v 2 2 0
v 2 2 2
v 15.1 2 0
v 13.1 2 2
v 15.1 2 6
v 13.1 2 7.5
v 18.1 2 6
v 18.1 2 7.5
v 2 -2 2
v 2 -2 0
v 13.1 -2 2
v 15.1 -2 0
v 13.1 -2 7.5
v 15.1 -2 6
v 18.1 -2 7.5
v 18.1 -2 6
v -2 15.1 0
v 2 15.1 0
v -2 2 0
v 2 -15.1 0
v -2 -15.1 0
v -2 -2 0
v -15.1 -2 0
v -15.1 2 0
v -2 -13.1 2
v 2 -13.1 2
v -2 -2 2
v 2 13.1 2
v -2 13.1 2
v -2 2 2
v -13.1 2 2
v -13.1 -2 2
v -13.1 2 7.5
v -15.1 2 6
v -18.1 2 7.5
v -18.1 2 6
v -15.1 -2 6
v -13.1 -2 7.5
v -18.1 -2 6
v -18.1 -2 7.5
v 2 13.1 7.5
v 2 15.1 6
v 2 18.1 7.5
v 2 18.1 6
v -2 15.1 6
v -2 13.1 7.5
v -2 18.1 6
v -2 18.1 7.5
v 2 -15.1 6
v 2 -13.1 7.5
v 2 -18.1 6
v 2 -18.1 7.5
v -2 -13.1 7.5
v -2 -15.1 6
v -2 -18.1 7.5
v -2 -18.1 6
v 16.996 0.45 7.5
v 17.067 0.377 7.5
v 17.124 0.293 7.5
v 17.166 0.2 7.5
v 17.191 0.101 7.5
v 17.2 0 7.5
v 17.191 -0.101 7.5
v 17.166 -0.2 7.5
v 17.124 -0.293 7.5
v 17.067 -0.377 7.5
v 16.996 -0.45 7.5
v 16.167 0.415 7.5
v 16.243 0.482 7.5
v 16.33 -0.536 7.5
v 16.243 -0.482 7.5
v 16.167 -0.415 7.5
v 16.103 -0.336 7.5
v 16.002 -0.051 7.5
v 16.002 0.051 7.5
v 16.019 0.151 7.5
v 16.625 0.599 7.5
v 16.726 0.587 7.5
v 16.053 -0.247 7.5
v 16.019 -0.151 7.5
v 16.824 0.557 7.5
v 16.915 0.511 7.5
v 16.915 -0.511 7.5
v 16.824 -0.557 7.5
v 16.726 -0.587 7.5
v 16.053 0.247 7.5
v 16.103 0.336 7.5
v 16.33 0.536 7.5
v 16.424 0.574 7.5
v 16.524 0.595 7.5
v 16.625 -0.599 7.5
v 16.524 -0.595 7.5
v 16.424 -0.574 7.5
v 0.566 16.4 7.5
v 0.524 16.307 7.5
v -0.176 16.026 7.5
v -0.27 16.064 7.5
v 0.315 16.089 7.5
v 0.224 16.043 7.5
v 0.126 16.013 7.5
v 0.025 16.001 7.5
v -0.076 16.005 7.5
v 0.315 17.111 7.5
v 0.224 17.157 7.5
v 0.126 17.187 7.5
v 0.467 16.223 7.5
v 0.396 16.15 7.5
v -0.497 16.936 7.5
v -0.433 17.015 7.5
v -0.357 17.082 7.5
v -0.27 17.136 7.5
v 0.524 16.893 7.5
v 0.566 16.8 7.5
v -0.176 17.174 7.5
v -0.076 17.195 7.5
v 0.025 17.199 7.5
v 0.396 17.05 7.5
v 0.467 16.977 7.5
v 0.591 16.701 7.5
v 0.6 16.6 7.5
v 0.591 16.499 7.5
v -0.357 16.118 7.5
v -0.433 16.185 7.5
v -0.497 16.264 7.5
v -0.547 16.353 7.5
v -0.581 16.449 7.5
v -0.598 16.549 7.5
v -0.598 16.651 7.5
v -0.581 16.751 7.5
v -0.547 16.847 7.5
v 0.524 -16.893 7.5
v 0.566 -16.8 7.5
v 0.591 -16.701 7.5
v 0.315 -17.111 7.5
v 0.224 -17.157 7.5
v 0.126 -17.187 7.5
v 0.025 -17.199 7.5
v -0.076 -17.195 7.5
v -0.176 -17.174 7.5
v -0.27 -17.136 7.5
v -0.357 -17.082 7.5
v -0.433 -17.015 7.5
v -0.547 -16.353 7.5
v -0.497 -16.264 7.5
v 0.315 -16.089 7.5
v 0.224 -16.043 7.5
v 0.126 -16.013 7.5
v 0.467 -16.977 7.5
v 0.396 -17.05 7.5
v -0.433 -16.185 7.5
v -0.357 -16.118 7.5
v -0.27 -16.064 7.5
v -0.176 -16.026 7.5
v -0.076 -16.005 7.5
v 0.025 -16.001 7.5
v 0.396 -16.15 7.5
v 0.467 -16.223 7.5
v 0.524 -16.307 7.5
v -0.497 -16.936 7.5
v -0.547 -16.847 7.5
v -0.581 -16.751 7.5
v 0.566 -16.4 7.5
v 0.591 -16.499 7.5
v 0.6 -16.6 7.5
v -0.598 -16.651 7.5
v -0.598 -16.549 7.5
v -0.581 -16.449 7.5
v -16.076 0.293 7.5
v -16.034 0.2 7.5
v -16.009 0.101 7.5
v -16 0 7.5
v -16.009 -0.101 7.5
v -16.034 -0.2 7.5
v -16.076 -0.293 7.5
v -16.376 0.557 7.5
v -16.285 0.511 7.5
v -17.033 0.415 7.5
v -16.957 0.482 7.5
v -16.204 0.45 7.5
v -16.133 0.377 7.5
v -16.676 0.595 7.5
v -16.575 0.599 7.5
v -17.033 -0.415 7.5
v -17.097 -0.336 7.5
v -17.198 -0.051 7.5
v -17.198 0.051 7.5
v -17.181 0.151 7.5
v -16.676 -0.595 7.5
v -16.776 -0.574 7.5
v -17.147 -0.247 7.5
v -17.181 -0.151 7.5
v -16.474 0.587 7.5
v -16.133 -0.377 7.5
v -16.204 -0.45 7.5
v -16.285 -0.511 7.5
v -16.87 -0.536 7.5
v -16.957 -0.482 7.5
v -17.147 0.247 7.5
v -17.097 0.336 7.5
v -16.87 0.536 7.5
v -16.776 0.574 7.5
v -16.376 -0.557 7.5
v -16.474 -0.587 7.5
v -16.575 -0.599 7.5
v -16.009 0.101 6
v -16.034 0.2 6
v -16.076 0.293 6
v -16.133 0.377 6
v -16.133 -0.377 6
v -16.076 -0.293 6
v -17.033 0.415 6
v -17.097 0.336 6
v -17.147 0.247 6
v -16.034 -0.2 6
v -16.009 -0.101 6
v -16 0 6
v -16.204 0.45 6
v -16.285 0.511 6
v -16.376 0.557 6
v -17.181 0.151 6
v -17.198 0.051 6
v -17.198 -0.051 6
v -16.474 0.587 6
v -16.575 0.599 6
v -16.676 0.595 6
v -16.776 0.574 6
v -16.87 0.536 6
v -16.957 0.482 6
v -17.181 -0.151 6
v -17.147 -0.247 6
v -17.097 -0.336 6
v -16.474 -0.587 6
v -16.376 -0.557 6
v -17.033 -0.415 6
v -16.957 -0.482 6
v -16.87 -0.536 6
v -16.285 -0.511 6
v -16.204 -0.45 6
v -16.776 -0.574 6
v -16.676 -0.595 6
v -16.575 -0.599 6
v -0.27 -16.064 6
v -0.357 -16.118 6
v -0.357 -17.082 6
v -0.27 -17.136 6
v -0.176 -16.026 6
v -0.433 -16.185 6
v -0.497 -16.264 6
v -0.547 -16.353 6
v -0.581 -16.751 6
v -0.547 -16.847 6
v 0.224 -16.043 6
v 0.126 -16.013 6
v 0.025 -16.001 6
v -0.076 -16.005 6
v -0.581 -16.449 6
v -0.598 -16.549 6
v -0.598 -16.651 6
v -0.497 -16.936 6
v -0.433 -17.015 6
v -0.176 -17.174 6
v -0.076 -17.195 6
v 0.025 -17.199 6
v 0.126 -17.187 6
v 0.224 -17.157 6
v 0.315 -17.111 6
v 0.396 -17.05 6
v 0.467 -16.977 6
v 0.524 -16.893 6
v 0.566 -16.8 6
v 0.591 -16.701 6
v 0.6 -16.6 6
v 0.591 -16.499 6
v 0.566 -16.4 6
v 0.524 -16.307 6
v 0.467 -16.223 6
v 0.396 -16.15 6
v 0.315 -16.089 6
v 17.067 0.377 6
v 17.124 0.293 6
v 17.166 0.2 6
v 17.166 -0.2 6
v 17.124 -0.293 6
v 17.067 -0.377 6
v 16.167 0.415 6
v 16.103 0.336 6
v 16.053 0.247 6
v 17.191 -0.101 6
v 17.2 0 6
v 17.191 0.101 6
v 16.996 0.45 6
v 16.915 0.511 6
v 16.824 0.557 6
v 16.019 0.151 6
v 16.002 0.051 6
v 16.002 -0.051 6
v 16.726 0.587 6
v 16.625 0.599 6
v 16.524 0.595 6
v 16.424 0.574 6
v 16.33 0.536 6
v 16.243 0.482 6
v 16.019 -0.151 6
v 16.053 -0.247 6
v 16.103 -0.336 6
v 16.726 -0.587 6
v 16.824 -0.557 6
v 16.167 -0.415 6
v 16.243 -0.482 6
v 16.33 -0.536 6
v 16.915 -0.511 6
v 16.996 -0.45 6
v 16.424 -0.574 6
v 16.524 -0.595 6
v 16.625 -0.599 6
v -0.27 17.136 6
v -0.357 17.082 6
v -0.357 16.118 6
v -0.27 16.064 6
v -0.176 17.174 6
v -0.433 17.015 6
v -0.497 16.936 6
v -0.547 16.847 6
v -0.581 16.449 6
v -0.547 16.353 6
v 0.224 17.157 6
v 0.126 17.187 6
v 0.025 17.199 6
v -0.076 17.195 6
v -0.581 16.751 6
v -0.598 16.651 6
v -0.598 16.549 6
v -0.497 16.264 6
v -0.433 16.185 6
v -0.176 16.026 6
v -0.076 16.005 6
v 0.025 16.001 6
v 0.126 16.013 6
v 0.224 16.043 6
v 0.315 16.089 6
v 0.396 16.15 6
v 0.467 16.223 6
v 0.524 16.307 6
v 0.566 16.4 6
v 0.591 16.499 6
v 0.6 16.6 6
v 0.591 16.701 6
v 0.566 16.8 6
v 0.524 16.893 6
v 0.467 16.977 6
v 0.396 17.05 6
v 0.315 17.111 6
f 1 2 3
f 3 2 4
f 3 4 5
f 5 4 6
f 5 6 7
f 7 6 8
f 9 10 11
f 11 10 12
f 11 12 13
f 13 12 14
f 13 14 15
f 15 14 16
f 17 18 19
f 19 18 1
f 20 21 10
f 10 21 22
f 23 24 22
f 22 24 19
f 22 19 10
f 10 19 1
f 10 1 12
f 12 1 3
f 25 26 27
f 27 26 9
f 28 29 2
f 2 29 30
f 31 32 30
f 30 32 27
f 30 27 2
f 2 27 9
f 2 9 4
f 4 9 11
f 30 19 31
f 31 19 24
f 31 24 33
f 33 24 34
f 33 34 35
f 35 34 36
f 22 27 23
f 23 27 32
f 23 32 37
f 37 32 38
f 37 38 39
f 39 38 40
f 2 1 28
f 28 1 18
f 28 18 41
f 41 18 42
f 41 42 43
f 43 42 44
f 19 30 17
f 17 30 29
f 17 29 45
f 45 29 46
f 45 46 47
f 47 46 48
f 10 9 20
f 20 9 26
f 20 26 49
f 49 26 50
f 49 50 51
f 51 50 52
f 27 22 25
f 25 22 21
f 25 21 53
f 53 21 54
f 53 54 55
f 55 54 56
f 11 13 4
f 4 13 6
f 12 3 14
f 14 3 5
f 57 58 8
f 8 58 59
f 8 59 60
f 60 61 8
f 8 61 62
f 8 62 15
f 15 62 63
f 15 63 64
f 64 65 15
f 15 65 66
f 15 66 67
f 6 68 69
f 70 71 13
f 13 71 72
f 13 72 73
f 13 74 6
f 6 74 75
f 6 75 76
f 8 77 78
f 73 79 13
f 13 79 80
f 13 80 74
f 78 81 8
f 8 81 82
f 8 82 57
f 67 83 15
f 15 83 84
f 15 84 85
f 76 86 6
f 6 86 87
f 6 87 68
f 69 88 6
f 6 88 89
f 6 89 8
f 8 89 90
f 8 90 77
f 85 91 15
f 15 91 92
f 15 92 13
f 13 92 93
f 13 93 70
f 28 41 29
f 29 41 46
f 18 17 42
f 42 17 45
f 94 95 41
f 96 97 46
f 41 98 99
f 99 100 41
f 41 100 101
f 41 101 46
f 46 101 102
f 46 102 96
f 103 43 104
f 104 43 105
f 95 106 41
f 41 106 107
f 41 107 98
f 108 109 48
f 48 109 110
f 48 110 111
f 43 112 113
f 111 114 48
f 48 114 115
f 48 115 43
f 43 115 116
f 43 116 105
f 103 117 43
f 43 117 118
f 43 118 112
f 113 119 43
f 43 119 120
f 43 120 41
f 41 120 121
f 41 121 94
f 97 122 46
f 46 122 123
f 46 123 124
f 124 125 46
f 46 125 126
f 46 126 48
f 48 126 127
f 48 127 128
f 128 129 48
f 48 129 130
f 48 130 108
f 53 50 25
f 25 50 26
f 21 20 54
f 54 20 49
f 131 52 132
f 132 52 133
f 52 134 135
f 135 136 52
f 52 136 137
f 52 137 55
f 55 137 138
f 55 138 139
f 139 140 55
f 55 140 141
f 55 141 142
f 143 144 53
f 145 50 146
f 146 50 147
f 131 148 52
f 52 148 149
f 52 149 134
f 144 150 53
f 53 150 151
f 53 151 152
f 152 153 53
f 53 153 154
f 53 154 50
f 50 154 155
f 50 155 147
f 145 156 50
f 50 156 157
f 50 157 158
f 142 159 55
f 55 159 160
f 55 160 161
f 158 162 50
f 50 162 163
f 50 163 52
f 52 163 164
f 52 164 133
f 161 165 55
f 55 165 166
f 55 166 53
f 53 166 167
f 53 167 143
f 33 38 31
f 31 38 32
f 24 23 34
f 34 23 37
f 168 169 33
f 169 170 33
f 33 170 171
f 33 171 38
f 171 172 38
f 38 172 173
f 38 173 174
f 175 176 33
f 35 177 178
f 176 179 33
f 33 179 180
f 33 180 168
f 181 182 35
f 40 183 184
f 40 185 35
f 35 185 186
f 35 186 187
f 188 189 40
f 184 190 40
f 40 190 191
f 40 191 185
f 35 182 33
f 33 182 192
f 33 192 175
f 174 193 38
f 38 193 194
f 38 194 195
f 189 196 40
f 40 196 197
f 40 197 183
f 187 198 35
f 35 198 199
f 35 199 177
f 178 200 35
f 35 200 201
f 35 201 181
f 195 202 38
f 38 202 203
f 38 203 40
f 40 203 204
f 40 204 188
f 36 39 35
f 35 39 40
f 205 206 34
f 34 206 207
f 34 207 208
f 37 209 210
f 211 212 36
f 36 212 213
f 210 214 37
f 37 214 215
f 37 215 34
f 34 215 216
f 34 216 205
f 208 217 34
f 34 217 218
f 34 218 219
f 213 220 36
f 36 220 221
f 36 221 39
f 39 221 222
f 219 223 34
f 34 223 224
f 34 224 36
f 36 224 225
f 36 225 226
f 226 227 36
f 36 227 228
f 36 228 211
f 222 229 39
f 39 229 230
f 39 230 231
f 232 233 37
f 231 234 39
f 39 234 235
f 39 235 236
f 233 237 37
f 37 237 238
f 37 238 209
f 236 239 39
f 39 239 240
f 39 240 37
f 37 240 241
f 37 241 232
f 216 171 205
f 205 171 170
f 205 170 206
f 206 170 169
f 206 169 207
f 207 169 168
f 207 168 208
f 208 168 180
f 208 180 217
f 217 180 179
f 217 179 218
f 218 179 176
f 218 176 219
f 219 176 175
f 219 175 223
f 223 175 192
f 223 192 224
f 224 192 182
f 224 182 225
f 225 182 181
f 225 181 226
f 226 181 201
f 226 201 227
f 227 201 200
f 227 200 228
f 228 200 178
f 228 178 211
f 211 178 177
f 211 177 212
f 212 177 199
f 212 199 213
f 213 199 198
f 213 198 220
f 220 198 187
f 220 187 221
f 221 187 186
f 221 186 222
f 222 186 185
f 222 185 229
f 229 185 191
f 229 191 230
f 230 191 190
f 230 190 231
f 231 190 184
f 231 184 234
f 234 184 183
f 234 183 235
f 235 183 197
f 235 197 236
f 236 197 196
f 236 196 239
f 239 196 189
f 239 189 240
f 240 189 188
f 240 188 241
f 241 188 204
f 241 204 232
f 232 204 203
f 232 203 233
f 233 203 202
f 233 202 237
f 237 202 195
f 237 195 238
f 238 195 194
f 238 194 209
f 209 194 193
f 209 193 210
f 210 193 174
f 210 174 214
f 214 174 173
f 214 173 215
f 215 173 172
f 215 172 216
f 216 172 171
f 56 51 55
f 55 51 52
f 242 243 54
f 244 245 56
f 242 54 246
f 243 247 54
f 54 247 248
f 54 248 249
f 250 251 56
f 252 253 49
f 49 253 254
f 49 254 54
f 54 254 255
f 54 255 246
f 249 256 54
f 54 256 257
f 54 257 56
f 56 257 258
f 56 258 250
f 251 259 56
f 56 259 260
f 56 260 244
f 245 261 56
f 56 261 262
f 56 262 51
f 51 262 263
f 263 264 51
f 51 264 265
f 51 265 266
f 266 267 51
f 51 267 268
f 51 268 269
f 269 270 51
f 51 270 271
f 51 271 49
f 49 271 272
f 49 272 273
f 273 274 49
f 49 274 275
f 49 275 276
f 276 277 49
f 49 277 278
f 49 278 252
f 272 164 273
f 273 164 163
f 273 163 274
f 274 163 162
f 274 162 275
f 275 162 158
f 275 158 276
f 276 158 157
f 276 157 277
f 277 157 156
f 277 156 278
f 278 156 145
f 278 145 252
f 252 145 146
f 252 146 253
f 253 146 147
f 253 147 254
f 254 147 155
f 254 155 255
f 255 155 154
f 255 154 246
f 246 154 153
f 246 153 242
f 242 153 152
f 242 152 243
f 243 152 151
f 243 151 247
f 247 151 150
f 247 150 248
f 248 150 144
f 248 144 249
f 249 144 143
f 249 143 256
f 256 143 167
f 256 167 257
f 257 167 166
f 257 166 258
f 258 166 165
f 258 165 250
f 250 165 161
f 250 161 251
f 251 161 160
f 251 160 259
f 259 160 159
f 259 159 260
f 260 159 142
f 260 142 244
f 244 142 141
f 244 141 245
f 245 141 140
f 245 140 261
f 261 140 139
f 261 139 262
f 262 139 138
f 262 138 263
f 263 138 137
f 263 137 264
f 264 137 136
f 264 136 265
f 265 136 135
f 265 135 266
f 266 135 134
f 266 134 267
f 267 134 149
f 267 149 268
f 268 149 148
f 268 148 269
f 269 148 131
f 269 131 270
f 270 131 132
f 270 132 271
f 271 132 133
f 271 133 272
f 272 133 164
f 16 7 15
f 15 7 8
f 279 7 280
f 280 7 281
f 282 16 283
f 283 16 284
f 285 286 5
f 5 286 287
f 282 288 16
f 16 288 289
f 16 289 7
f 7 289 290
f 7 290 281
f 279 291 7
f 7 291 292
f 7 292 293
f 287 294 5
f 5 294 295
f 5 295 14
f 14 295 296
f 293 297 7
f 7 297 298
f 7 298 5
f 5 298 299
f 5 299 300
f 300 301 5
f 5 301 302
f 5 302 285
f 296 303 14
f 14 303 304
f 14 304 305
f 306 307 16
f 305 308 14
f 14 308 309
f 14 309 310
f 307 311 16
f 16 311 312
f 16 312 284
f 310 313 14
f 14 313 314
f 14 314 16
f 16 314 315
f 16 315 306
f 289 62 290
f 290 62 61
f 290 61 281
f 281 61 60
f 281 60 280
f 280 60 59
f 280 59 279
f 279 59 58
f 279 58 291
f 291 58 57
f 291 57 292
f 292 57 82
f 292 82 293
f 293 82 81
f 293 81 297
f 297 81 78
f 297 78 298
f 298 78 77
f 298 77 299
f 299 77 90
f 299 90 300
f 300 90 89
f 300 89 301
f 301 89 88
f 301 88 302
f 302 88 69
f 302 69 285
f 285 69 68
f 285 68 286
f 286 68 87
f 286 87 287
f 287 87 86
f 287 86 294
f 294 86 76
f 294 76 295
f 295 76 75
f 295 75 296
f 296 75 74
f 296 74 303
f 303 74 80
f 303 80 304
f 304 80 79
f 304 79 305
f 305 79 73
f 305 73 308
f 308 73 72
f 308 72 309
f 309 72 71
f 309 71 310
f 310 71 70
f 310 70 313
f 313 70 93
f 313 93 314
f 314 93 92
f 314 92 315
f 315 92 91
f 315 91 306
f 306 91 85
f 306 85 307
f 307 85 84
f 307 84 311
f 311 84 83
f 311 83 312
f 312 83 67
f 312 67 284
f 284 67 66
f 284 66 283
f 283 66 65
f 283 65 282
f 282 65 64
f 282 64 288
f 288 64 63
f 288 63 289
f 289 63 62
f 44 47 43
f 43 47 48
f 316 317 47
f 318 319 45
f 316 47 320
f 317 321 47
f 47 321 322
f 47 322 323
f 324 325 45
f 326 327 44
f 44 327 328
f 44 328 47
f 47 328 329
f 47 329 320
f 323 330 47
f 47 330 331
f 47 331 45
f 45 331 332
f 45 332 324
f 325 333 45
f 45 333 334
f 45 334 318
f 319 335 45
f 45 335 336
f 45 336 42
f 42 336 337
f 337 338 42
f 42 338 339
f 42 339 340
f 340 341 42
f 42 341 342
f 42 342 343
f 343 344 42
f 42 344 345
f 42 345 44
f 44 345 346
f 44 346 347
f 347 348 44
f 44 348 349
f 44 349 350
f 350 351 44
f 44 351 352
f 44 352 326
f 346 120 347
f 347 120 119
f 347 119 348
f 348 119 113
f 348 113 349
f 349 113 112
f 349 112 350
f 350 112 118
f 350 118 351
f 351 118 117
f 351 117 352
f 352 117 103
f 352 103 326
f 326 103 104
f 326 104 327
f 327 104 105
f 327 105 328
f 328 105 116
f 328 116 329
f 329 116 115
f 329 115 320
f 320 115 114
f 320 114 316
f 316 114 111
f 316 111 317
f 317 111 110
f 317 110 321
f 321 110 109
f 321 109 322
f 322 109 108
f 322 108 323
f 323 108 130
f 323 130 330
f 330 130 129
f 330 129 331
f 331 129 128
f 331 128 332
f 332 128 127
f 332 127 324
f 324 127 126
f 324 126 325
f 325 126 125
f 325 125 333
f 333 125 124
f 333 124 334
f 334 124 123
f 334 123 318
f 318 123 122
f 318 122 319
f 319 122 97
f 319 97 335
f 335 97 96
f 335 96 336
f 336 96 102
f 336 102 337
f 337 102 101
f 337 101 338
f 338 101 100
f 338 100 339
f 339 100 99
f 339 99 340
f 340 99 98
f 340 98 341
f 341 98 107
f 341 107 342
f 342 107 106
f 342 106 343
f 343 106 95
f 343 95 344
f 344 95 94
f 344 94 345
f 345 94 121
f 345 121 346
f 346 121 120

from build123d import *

# Parameters (mm, degrees)
SKETCH_1_W      = 26.2
SKETCH_1_H      = 4
SKETCH_1_W_2    = 4
SKETCH_1_H_2    = 26.2
EXTRUDE_1_DEPTH = 2
SKETCH_1_6_W    = 2
SKETCH_1_6_H    = 4
SKETCH_1_6_W_2  = 4
SKETCH_1_6_H_2  = 2
EXTRUDE_2_DEPTH = 7.5
EXTRUDE_START   = 7.5
SKETCH_1_7_W    = 3
SKETCH_1_7_H    = 4
SKETCH_1_7_R    = 0.6
SKETCH_1_7_W_2  = 4
SKETCH_1_7_H_2  = 3
EXTRUDE_3_DEPTH = 1.5


with BuildPart() as part:
    # 草图1 → 凸台-拉伸1 (new body)
    with BuildSketch(Plane.XY):
        Rectangle(SKETCH_1_W, SKETCH_1_H)
        Rectangle(SKETCH_1_W_2, SKETCH_1_H_2)
    extrude(amount=EXTRUDE_1_DEPTH)

    # 草图1<6> → 凸台-拉伸2 (add)
    with BuildSketch(Plane.XY):
        with Locations((14.1, 0)):
            Rectangle(SKETCH_1_6_W, SKETCH_1_6_H)
        with Locations((0, 14.1)):
            Rectangle(SKETCH_1_6_W_2, SKETCH_1_6_H_2)
        with Locations((0, -14.1)):
            Rectangle(SKETCH_1_6_W_2, SKETCH_1_6_H_2)
        with Locations((-14.1, 0)):
            Rectangle(SKETCH_1_6_W, SKETCH_1_6_H)
    extrude(amount=EXTRUDE_2_DEPTH)

    # 草图1<7> → 凸台-拉伸3 (add)
    # profile 1 of 4: a face of its own
    with BuildSketch(Plane.XY.offset(EXTRUDE_START)):
        with Locations((-16.6, 0)):
            Rectangle(SKETCH_1_7_W, SKETCH_1_7_H)
        with Locations((-16.6, 0)):
            Circle(SKETCH_1_7_R, mode=Mode.SUBTRACT)
    # profile 2 of 4: a face of its own
    with BuildSketch(Plane.XY.offset(EXTRUDE_START)):
        with Locations((0, 16.6)):
            Rectangle(SKETCH_1_7_W_2, SKETCH_1_7_H_2)
        with Locations((0, 16.6)):
            Circle(SKETCH_1_7_R, mode=Mode.SUBTRACT)
    # profile 3 of 4: a face of its own
    with BuildSketch(Plane.XY.offset(EXTRUDE_START)):
        with Locations((16.6, 0)):
            Rectangle(SKETCH_1_7_W, SKETCH_1_7_H)
        with Locations((16.6, 0)):
            Circle(SKETCH_1_7_R, mode=Mode.SUBTRACT)
    # profile 4 of 4: a face of its own
    with BuildSketch(Plane.XY.offset(EXTRUDE_START)):
        with Locations((0, -16.6)):
            Rectangle(SKETCH_1_7_W_2, SKETCH_1_7_H_2)
        with Locations((0, -16.6)):
            Circle(SKETCH_1_7_R, mode=Mode.SUBTRACT)
    extrude(amount=-EXTRUDE_3_DEPTH)


solid = part.part
